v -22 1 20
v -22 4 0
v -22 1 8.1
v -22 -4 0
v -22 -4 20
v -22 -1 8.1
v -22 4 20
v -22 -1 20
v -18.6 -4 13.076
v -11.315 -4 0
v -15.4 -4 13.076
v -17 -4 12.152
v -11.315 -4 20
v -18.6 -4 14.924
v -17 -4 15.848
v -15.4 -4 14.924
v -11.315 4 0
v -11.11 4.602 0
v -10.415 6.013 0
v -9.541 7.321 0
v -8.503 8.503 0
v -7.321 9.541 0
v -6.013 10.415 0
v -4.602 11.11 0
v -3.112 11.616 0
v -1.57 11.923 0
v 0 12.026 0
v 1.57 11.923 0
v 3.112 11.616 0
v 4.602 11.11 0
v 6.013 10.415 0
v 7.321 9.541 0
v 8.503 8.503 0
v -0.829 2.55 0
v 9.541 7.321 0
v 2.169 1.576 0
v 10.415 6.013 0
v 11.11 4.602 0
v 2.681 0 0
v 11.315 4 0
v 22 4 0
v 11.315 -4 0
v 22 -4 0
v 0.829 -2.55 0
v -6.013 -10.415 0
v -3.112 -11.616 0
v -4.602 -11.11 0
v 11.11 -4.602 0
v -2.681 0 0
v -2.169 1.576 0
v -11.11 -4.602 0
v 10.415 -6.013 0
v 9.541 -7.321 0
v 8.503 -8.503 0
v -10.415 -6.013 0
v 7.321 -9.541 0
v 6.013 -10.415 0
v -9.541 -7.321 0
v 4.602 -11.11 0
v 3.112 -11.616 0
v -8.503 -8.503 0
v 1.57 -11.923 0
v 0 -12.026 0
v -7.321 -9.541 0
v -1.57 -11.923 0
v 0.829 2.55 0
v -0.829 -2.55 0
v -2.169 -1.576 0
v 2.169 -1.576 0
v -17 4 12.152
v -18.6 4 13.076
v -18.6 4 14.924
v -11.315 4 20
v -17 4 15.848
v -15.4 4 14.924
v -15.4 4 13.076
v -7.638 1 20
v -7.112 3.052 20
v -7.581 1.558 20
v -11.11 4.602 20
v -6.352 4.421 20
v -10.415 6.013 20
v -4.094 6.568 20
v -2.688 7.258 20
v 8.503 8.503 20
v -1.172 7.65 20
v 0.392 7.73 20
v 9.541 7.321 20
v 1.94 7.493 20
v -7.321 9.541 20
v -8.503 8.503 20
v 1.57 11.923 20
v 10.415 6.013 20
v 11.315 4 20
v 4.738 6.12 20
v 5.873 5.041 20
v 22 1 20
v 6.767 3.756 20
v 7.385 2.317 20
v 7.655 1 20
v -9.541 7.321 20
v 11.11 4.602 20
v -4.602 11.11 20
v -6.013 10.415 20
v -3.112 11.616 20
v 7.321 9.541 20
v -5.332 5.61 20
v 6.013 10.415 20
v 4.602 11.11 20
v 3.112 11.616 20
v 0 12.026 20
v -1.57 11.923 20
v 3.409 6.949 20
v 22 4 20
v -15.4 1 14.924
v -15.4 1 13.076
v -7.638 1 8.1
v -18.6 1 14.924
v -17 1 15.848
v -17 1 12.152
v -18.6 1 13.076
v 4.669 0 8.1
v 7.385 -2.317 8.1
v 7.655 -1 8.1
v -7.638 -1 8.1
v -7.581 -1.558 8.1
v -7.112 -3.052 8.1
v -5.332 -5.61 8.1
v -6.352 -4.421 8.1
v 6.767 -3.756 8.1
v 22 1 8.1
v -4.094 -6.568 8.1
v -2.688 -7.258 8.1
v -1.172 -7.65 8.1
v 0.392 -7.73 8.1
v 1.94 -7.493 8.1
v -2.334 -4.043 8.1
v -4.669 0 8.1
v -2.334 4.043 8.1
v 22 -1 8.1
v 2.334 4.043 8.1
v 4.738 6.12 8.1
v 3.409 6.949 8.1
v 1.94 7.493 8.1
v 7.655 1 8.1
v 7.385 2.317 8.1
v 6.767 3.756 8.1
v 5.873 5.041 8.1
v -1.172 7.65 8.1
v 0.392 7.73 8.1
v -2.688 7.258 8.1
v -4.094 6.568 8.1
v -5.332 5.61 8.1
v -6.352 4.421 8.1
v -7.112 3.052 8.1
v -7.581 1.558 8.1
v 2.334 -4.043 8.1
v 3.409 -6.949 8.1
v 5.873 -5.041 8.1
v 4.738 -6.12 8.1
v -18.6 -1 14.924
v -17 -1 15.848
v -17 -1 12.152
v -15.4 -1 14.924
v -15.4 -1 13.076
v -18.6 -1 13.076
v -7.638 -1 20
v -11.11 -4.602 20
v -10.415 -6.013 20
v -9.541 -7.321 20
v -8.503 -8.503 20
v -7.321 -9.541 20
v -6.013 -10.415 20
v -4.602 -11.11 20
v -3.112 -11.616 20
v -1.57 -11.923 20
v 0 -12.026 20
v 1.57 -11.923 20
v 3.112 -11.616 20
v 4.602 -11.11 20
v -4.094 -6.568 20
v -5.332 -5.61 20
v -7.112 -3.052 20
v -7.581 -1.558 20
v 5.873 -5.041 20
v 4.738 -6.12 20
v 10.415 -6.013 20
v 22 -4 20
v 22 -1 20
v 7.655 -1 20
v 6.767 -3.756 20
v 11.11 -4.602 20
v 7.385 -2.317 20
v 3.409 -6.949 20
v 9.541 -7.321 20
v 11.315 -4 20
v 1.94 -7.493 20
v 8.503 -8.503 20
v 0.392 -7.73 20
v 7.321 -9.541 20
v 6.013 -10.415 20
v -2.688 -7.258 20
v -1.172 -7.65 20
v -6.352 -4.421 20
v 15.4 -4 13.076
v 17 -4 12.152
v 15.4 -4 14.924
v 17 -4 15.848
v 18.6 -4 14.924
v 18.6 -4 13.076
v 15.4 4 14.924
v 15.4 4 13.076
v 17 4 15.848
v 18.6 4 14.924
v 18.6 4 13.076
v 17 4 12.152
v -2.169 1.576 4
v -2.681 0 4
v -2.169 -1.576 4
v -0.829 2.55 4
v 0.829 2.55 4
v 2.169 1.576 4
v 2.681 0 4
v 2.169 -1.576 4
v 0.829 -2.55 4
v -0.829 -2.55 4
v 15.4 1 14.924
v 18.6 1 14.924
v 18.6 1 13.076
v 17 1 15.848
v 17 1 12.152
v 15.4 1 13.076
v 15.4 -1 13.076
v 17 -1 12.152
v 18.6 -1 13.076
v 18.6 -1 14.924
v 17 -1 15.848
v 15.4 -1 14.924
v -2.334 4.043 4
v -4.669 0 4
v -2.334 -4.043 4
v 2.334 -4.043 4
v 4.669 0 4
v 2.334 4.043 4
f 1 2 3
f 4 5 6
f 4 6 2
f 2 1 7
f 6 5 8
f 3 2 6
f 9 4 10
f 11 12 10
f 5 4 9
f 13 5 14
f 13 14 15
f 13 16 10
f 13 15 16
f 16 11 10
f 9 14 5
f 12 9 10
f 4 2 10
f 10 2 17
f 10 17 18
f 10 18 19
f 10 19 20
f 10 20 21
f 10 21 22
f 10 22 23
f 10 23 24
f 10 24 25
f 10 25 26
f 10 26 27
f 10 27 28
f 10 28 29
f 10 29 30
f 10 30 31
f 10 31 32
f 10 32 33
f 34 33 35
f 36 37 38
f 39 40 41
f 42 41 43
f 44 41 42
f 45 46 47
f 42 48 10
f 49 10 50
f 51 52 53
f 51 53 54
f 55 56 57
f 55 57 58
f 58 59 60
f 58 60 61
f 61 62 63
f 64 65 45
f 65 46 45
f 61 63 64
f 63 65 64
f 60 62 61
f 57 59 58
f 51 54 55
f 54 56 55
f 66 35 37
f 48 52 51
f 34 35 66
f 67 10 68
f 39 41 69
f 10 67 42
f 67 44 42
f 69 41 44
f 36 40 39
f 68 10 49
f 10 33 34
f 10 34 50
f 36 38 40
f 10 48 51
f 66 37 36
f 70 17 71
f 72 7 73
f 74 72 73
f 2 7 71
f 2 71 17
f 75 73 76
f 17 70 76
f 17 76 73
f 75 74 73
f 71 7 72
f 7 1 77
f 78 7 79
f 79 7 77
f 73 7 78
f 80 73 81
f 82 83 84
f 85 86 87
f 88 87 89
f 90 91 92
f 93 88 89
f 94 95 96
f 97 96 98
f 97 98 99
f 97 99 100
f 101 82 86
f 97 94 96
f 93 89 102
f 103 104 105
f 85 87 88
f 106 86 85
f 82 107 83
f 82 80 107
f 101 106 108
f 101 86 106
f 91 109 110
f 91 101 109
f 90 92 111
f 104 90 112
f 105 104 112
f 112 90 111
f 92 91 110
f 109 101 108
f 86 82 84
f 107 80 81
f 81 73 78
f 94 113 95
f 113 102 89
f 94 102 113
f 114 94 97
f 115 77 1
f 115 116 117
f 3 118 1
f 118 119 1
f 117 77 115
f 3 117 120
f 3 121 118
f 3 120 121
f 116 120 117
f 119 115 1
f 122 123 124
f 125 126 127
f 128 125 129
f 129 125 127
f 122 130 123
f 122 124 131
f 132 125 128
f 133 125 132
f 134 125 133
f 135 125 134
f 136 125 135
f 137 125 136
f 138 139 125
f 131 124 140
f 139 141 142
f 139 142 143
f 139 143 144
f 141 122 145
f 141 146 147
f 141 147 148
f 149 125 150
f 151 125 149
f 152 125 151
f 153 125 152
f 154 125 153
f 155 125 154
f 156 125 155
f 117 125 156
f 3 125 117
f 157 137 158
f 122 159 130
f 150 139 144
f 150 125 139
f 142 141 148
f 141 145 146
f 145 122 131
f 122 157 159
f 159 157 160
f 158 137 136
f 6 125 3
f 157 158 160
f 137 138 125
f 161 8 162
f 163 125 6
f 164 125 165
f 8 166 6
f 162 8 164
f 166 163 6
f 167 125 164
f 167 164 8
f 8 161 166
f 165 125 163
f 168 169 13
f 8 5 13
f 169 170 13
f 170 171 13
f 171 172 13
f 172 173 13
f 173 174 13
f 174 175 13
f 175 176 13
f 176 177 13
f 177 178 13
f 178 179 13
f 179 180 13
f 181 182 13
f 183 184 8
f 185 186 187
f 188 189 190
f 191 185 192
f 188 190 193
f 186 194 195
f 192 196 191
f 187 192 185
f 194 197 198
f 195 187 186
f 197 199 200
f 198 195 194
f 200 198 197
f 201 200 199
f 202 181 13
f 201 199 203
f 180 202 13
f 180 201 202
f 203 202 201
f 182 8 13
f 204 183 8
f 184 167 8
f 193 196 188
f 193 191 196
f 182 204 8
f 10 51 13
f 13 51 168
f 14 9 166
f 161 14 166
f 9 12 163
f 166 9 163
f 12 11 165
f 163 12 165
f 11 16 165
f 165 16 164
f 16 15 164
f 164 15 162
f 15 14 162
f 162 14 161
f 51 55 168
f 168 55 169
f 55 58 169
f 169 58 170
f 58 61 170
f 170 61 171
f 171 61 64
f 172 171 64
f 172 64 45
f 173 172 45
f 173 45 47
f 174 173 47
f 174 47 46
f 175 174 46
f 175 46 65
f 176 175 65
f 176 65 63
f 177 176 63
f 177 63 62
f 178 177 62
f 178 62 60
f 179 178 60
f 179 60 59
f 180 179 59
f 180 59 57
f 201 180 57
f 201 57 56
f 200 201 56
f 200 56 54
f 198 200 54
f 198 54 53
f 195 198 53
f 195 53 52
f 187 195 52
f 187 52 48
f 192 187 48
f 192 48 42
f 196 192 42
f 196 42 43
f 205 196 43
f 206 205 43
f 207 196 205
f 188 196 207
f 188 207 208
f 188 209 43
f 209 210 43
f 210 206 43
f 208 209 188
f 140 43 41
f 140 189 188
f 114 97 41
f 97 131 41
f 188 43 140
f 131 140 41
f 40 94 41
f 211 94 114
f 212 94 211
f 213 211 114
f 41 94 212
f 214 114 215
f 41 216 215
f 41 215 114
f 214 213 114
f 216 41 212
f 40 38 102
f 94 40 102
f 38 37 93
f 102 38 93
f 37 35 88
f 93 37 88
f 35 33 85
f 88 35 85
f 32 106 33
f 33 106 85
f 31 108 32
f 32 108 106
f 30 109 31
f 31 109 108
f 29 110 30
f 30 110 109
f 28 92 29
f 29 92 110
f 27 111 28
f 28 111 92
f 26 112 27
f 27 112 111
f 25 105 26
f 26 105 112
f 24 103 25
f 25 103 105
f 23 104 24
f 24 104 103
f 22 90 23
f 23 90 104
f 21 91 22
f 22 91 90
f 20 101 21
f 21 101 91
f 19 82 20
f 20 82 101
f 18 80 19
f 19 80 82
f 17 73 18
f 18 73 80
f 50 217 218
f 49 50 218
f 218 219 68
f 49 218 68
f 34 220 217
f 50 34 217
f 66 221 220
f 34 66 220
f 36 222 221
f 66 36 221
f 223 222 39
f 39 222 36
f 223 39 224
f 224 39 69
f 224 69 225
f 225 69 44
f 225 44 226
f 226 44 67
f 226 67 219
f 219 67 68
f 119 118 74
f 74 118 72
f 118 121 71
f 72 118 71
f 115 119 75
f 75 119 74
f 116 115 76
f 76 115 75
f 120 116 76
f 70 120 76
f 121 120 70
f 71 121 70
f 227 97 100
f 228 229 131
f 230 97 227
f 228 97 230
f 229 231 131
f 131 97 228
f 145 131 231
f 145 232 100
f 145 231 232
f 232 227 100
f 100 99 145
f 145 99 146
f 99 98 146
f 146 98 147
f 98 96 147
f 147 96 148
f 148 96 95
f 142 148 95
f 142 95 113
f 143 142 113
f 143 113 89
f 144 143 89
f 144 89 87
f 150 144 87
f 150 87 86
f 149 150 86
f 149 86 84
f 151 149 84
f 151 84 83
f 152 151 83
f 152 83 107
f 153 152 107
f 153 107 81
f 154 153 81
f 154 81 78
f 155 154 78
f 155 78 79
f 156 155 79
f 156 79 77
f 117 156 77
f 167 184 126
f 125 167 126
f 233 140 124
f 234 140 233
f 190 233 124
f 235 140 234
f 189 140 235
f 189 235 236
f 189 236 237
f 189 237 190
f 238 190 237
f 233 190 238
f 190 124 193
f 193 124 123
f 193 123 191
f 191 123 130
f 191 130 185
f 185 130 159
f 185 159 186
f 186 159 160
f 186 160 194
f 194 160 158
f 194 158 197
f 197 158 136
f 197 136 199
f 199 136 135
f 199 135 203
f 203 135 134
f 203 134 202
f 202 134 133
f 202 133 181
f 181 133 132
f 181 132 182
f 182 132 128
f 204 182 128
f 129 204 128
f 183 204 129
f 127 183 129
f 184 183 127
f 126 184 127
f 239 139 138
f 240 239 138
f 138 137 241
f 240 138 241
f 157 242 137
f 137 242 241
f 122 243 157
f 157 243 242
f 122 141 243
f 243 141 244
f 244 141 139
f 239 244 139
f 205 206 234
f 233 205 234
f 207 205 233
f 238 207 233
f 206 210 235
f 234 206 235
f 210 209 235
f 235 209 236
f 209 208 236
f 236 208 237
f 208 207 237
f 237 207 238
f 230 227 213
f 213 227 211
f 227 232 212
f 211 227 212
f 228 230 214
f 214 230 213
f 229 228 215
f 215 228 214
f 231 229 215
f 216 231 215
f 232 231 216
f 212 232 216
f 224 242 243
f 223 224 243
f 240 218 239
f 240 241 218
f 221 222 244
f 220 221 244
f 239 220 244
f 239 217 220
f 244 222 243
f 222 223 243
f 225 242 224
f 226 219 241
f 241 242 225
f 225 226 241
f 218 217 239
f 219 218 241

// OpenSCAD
//-----------------------------------------------------------------------------------
// drill adapter for 15mm PTFE 
//
// http://www.thingiverse.com/thing:184583
// https://github.com/Stemer114/things/tree/master/tools 
//
// (c) 2013 by Stemer114@gmail.com
// License: licensed under the Creative Commons - GNU GPL license.
//          http://www.gnu.org/licenses/gpl-2.0.html
//-----------------------------------------------------------------------------------

//-----------------------------------------------------------------------------------
//display settings
//-----------------------------------------------------------------------------------

//color settings

//-----------------------------------------------------------------------------------
//global configuration settings
//-----------------------------------------------------------------------------------
de = 0.1; //delta param, so differences do not become manifold
fn_hole = 12;  //fn setting for round holes/bores (polyhole)
ex = 0;  //offset for Explosivdarstellung, set to 0 for none

//-----------------------------------------------------------------------------------
// parametric settings (in mm)
//-----------------------------------------------------------------------------------

P1 = 15.4;  //PTFE rod diameter plus tolerance
P2 = 24;    //OD
P3 = P2+2*10;  //bracket length
P4 = 2;       //gap width
P5 = 8;       //bracket thickness
P6 = 8;       //wrench size for bolt
P7 = 5.1;     //bore size for bolt

P10 = 12;  //chuck depth
P11 = 4;   //hex head depth
P12 = 4;   //bottom plate depth
P13 = 3.2; //bracket bores diameter
P15 = P10+P11+P12;  //adapter total height (calulated)


//-----------------------------------------------------------------------------------
// libraries
//-----------------------------------------------------------------------------------
use <MCAD/polyholes.scad>

//-----------------------------------------------------------------------------------
// main rendering
//-----------------------------------------------------------------------------------

ptfe_drill_adapter();




//-----------------------------------------------------------------------------------
// modules
//-----------------------------------------------------------------------------------

module ptfe_drill_adapter()
{
    difference()
    {
        union()
        {
            //bracket
            translate([0, 0, P15/2])
                cube([P3, P5, P15 ], center=true);

            //adapter main body
            translate([0, 0, 0])
                polyhole(h=P15, d=P2);


        }  //end union

        union()
        {
            //adapter bore 
            translate([0, 0, P11+P12+de])
                polyhole(h=P10+de, d=P1);

            //bracket gap
            translate([0, 0, P10/2+P11+P12+de])
                cube([P3+2*de, P4, P10 ], center=true);

            //nut trap for bolt
            //source: http://forum.openscad.org/Drawing-tools-td4551i20.html
            translate([0, 0, P12])
            //rotate([0,90,0])
                cylinder(r = P6 / 2 / cos(180 / 6) + 0.05, h=P11+2*de, $fn=6);

            //bore for bolt
            translate([0, 0, -de])
                polyhole(h=P12+2*de, d=P7);

            //bores for bracket bolts
            translate([P2/2+(P3-P2)/4, P5/2+de, P15-P10/2])
                rotate([90, 90, 0])
                polyhole(h=P5+2*de, d=P13);

            translate([-(P2/2+(P3-P2)/4), P5/2+de, P15-P10/2])
                rotate([90, 90, 0])
                polyhole(h=P5+2*de, d=P13);





 
        } //end union

    }  //end difference

}  //end module SquareRuler


//-----------------------------------------------------------------------------------
// utility functions
//-----------------------------------------------------------------------------------
